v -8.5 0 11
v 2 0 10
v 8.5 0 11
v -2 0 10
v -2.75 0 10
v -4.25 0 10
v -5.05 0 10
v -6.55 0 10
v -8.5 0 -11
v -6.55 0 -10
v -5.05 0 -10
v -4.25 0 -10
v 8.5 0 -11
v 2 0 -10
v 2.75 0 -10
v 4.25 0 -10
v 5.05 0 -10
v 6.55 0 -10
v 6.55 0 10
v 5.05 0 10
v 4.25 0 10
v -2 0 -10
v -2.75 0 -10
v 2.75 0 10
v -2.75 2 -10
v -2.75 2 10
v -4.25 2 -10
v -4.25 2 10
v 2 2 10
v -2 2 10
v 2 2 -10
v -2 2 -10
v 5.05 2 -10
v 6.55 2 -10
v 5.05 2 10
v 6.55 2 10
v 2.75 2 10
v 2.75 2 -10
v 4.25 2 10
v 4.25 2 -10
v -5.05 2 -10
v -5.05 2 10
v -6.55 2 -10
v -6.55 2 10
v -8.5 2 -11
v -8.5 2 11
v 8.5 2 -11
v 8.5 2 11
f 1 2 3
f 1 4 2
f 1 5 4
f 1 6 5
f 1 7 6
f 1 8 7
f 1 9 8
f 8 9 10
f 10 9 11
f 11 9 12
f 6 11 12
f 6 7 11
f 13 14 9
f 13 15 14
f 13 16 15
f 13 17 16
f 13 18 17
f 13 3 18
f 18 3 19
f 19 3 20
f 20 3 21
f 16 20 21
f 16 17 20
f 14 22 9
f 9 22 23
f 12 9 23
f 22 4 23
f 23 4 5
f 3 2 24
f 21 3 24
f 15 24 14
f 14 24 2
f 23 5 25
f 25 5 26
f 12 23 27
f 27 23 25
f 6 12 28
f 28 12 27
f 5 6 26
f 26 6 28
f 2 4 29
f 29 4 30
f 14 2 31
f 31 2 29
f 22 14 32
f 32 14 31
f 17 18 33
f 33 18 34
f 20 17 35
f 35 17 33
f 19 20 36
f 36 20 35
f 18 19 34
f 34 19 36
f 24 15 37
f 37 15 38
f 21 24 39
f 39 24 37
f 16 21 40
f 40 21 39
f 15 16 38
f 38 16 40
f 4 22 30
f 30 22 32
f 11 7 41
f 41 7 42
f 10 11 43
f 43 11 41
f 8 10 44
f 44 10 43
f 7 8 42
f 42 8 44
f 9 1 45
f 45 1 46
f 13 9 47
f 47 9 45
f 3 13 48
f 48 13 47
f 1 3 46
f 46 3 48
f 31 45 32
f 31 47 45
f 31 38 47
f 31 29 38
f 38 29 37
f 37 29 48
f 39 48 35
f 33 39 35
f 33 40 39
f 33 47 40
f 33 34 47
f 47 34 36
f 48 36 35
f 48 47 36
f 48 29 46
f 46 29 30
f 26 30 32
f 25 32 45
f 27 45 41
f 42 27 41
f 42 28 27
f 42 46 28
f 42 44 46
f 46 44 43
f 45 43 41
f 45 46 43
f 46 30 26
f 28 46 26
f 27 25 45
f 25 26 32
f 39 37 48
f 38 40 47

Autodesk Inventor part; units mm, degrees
ref_plane "YZ Plane" through (0, 0, 0) normal (1, 0, 0) x (0, 1, 0)
ref_plane "XZ Plane" through (0, 0, 0) normal (0, 1, 0) x (-1, 0, 0)
ref_plane "XY Plane" through (0, 0, 0) normal (0, 0, 1) x (1, 0, 0)
sketch "Sketch1" plane through (0, 0, 0) normal (0, 1, 0) x (-1, 0, 0)
  line L0 (8.5, 11) -> (-8.5, 11)
  line L1 (-8.5, 11) -> (-8.5, -11)
  line L2 (-8.5, -11) -> (8.5, -11)
  line L3 (8.5, -11) -> (8.5, 11)
  line L4 (8.5, 11) -> (-8.5, -11) construction
  line L5 (-8.5, 11) -> (8.5, -11) construction
  point P0 (0, 0)
  dimension "d0" = 17
  dimension "d1" = 22
extrude "Body" add sketch "Sketch1" along normal blind 2
sketch "Sketch3" plane through (0, 2, 0) normal (0, 1, 0) x (1, 0, 0)
  line L0 (8.5, 11) -> (-8.5, 11) projected
  line L1 (0, 11) -> (0, -11)
  line L2 (-8.5, -11) -> (8.5, -11) projected
  line L3 (-2, -10) -> (-0.5, -10)
  line L4 (-0.5, -10) -> (-0.5, 10)
  line L5 (-0.5, 10) -> (-2, 10)
  line L6 (-2, 10) -> (-2, -10)
  line L7 (-2, -10) -> (-0.5, 10) construction
  line L8 (-0.5, -10) -> (-2, 10) construction
  line L9 (-4.25, 10) -> (-2.75, 10)
  line L10 (-2.75, 10) -> (-2.75, -10)
  line L11 (-2.75, -10) -> (-4.25, -10)
  line L12 (-4.25, -10) -> (-4.25, 10)
  line L13 (-4.25, 10) -> (-2.75, -10) construction
  line L14 (-2.75, 10) -> (-4.25, -10) construction
  line L15 (-8.5, 11) -> (-8.5, -11) projected
  line L16 (-8.5, 0) -> (8.5, 0)
  line L17 (-6.55, 10) -> (-5.05, 10)
  line L18 (-5.05, 10) -> (-5.05, -10)
  line L19 (-5.05, -10) -> (-6.55, -10)
  line L20 (-6.55, -10) -> (-6.55, 10)
  line L21 (-6.55, 10) -> (-5.05, -10) construction
  line L22 (-5.05, 10) -> (-6.55, -10) construction
  line L23 (2, -10) -> (0.5, -10)
  line L24 (0.5, -10) -> (0.5, 10)
  line L25 (0.5, 10) -> (2, 10)
  line L26 (2, 10) -> (2, -10)
  line L27 (2, -10) -> (0.5, 10) construction
  line L28 (0.5, -10) -> (2, 10) construction
  line L29 (4.25, 10) -> (2.75, 10)
  line L30 (2.75, 10) -> (2.75, -10)
  line L31 (2.75, -10) -> (4.25, -10)
  line L32 (4.25, -10) -> (4.25, 10)
  line L33 (4.25, 10) -> (2.75, -10) construction
  line L34 (2.75, 10) -> (4.25, -10) construction
  line L35 (6.55, 10) -> (5.05, 10)
  line L36 (5.05, 10) -> (5.05, -10)
  line L37 (5.05, -10) -> (6.55, -10)
  line L38 (6.55, -10) -> (6.55, 10)
  line L39 (6.55, 10) -> (5.05, -10) construction
  line L40 (5.05, 10) -> (6.55, -10) construction
  point P0 (0, 0)
  point P1 (-1.25, 0)
  point P2 (-3.5, 0)
  point P3 (-5.8, 0)
  point P4 (1.25, 0)
  point P5 (3.5, 0)
  point P6 (5.8, 0)
  dimension "d6" = 1.5
  dimension "d7" = 20
  dimension "d9" = 0.5
  dimension "d11" = 2.75
  dimension "d12" = 5.05
extrude "Rungs" cut sketch "Sketch3" against normal through all contours L36 L35 L38 L16 | L16 L38 L37 L36 | L30 L29 L32 L16 | L16 L32 L31 L30 | L24 L25 L26 L16 | L16 L26 L23 L24 | L16 L6 L5 L4 | L4 L3 L6 L16 | L20 L17 L18 L16 | L16 L18 L19 L20 | L16 L12 L9 L10 | L10 L11 L12 L16
sketch "Sketch4" plane through (0, 2, 0) normal (0, 1, 0) x (1, 0, 0)
  line L0 (0.5, -10) -> (0.5, 10) projected
  line L1 (-2, 10) -> (-0.5, 10) projected
  line L2 (0.5, -10) -> (-0.5, -10)
  line L3 (-0.5, -10) -> (-0.5, 10)
  line L4 (-0.5, 10) -> (0.5, 10)
  line L5 (0.5, 10) -> (0.5, -10)
  point P0 (0, 0)
extrude "Remove center rung" cut sketch "Sketch4" against normal through all
properties part number "jtd_tack_no_middle_20170113"
